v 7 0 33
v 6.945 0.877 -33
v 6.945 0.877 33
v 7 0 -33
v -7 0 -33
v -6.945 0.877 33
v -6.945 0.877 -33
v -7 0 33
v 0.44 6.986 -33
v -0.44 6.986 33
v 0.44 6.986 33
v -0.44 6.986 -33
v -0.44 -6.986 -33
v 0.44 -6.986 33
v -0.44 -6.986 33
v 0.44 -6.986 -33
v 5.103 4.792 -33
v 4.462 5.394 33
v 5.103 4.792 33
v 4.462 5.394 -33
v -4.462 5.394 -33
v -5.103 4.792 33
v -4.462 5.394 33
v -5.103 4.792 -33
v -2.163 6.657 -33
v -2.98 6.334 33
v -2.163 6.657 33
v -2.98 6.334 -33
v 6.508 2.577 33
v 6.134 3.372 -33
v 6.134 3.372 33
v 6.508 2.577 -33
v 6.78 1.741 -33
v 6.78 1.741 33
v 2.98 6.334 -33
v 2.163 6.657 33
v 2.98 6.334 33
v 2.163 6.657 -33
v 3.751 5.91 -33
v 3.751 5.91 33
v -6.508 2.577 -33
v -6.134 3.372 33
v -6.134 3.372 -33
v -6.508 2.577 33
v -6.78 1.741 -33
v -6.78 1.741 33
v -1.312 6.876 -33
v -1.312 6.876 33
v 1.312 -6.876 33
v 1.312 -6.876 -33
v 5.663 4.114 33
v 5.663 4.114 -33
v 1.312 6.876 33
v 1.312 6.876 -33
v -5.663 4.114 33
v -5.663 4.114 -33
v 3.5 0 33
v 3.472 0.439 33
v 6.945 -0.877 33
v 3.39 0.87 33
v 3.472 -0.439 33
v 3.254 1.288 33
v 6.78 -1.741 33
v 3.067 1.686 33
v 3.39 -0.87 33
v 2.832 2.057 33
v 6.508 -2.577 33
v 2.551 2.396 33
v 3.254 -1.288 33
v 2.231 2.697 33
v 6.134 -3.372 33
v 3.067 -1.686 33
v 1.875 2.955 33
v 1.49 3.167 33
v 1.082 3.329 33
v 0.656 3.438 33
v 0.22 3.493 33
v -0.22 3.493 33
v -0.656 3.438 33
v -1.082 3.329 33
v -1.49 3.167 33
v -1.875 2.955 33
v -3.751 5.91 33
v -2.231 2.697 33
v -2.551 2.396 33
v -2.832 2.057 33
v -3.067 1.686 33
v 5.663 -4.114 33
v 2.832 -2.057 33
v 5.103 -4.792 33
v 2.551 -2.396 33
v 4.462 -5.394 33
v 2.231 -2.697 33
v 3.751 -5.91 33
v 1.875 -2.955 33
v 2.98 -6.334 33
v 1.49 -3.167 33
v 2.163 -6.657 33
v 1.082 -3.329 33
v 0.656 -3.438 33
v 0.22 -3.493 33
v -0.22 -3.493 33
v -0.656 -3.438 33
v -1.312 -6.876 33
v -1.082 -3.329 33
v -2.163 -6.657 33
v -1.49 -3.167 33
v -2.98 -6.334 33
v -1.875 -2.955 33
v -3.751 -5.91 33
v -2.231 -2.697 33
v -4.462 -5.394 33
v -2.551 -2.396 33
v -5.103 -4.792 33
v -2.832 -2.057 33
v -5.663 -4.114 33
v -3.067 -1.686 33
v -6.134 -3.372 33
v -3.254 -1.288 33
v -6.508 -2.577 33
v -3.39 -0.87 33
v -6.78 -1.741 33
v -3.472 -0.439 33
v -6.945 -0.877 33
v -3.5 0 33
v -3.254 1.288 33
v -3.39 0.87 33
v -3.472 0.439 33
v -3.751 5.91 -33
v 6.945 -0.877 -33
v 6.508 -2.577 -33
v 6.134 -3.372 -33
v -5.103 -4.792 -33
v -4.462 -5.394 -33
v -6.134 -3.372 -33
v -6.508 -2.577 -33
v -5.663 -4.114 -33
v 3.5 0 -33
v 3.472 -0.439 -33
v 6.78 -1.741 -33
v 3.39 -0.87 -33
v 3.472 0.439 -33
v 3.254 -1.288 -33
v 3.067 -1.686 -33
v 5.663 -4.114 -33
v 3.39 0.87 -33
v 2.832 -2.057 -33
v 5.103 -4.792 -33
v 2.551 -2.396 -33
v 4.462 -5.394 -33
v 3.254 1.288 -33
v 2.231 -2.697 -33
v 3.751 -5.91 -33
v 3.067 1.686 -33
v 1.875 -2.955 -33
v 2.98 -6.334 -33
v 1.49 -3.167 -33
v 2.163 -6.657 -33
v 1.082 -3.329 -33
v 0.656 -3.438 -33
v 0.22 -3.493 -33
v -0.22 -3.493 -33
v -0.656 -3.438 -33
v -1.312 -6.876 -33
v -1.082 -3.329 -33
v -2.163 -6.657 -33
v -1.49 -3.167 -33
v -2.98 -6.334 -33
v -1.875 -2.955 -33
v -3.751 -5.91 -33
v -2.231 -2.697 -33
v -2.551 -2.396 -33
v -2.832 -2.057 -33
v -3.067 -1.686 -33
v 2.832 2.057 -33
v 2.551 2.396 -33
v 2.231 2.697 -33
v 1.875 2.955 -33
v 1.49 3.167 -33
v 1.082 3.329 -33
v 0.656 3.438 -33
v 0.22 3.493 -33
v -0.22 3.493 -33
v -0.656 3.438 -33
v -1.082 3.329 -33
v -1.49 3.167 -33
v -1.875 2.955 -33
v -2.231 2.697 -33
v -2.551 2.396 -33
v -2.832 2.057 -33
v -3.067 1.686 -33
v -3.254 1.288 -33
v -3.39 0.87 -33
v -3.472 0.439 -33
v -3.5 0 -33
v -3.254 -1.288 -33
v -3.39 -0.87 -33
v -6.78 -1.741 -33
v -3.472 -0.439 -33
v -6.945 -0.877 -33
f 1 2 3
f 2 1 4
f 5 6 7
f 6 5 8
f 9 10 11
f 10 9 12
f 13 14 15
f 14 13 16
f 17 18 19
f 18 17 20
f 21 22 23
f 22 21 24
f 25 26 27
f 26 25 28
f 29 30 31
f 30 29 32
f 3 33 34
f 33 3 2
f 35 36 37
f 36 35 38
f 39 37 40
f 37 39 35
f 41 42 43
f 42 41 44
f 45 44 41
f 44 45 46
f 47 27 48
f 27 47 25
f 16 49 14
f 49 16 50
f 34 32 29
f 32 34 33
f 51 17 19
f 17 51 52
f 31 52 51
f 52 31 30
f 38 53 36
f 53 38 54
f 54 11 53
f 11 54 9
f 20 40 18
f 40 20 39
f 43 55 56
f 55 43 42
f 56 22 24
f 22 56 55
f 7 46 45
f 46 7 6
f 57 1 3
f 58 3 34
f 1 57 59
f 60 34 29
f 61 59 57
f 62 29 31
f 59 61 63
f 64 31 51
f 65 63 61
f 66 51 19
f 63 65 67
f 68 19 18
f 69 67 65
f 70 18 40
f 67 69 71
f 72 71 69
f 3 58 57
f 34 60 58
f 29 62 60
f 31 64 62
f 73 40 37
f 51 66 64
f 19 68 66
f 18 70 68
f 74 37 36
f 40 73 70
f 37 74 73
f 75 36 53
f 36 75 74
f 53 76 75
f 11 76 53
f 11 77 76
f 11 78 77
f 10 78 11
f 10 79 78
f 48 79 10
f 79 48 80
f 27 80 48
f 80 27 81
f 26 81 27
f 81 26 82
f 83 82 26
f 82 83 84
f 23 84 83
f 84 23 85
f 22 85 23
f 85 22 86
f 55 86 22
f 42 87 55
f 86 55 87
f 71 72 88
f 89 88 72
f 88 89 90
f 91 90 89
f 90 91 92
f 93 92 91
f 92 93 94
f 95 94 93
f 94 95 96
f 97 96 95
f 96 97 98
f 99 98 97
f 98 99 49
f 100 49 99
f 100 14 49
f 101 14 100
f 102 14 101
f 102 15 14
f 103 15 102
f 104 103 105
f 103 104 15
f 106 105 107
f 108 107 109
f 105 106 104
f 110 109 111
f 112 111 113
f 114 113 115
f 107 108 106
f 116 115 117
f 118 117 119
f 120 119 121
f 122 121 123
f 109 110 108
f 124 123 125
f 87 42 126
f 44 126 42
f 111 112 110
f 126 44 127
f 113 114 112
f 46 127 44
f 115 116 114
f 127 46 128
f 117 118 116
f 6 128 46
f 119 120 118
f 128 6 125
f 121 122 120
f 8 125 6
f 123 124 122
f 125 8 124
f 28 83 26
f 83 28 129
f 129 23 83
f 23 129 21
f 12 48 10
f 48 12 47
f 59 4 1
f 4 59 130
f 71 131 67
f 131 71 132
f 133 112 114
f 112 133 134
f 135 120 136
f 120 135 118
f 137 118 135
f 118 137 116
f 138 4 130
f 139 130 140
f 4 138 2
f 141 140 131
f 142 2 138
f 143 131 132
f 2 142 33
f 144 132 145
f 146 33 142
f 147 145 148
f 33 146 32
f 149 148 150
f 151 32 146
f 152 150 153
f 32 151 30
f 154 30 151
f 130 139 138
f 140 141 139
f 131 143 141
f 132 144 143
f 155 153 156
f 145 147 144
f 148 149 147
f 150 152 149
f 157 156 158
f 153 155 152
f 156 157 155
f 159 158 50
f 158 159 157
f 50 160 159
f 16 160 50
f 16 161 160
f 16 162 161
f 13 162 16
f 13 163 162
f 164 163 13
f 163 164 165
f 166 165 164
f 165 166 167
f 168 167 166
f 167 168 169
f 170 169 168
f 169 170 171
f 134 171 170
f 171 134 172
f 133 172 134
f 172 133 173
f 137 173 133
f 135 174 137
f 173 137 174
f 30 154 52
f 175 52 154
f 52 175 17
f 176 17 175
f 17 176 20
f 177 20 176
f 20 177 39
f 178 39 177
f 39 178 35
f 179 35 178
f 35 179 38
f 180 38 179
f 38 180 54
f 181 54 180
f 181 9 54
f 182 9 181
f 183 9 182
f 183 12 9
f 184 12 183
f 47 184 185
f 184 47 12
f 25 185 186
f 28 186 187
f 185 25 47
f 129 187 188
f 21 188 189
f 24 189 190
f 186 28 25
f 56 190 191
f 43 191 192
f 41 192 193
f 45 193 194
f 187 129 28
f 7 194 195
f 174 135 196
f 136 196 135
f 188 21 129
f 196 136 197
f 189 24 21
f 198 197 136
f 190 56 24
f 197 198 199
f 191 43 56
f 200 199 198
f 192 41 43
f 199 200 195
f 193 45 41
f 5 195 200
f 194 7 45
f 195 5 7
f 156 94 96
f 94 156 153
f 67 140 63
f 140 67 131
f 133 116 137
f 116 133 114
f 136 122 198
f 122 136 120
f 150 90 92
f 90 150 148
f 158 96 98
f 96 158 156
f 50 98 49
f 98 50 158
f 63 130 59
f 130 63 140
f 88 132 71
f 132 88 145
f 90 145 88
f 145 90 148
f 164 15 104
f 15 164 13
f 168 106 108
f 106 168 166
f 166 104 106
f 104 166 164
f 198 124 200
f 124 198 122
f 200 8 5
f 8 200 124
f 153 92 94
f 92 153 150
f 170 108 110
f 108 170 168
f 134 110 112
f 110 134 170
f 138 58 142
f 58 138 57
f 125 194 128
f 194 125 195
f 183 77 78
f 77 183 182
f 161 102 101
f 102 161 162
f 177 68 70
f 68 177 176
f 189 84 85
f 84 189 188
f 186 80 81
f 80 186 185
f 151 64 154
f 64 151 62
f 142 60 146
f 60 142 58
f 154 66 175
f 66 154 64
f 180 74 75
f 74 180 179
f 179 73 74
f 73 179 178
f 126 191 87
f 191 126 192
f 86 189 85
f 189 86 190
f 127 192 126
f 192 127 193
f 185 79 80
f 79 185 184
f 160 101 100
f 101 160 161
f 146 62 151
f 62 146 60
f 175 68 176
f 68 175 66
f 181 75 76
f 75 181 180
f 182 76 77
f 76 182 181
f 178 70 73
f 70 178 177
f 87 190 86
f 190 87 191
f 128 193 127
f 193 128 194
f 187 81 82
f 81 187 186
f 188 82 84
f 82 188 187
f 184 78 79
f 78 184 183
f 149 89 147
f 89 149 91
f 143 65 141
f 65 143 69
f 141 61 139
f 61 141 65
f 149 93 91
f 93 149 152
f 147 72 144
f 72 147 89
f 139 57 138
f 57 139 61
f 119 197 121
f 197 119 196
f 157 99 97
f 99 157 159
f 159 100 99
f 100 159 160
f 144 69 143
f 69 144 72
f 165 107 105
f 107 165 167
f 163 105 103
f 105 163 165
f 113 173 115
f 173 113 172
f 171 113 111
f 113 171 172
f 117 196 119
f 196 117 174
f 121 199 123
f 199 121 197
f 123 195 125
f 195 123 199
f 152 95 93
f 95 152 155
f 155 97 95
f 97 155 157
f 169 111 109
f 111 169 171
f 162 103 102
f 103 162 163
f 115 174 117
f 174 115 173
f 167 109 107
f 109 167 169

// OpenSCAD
$fn = 50;


difference() {
	union() {
		translate(v = [0, 0, -33.0000000000]) {
			cylinder(h = 66, r = 7.0000000000);
		}
	}
	union() {
		translate(v = [0, 0, -100.0000000000]) {
			cylinder(h = 200, r = 3.5000000000);
		}
	}
}
